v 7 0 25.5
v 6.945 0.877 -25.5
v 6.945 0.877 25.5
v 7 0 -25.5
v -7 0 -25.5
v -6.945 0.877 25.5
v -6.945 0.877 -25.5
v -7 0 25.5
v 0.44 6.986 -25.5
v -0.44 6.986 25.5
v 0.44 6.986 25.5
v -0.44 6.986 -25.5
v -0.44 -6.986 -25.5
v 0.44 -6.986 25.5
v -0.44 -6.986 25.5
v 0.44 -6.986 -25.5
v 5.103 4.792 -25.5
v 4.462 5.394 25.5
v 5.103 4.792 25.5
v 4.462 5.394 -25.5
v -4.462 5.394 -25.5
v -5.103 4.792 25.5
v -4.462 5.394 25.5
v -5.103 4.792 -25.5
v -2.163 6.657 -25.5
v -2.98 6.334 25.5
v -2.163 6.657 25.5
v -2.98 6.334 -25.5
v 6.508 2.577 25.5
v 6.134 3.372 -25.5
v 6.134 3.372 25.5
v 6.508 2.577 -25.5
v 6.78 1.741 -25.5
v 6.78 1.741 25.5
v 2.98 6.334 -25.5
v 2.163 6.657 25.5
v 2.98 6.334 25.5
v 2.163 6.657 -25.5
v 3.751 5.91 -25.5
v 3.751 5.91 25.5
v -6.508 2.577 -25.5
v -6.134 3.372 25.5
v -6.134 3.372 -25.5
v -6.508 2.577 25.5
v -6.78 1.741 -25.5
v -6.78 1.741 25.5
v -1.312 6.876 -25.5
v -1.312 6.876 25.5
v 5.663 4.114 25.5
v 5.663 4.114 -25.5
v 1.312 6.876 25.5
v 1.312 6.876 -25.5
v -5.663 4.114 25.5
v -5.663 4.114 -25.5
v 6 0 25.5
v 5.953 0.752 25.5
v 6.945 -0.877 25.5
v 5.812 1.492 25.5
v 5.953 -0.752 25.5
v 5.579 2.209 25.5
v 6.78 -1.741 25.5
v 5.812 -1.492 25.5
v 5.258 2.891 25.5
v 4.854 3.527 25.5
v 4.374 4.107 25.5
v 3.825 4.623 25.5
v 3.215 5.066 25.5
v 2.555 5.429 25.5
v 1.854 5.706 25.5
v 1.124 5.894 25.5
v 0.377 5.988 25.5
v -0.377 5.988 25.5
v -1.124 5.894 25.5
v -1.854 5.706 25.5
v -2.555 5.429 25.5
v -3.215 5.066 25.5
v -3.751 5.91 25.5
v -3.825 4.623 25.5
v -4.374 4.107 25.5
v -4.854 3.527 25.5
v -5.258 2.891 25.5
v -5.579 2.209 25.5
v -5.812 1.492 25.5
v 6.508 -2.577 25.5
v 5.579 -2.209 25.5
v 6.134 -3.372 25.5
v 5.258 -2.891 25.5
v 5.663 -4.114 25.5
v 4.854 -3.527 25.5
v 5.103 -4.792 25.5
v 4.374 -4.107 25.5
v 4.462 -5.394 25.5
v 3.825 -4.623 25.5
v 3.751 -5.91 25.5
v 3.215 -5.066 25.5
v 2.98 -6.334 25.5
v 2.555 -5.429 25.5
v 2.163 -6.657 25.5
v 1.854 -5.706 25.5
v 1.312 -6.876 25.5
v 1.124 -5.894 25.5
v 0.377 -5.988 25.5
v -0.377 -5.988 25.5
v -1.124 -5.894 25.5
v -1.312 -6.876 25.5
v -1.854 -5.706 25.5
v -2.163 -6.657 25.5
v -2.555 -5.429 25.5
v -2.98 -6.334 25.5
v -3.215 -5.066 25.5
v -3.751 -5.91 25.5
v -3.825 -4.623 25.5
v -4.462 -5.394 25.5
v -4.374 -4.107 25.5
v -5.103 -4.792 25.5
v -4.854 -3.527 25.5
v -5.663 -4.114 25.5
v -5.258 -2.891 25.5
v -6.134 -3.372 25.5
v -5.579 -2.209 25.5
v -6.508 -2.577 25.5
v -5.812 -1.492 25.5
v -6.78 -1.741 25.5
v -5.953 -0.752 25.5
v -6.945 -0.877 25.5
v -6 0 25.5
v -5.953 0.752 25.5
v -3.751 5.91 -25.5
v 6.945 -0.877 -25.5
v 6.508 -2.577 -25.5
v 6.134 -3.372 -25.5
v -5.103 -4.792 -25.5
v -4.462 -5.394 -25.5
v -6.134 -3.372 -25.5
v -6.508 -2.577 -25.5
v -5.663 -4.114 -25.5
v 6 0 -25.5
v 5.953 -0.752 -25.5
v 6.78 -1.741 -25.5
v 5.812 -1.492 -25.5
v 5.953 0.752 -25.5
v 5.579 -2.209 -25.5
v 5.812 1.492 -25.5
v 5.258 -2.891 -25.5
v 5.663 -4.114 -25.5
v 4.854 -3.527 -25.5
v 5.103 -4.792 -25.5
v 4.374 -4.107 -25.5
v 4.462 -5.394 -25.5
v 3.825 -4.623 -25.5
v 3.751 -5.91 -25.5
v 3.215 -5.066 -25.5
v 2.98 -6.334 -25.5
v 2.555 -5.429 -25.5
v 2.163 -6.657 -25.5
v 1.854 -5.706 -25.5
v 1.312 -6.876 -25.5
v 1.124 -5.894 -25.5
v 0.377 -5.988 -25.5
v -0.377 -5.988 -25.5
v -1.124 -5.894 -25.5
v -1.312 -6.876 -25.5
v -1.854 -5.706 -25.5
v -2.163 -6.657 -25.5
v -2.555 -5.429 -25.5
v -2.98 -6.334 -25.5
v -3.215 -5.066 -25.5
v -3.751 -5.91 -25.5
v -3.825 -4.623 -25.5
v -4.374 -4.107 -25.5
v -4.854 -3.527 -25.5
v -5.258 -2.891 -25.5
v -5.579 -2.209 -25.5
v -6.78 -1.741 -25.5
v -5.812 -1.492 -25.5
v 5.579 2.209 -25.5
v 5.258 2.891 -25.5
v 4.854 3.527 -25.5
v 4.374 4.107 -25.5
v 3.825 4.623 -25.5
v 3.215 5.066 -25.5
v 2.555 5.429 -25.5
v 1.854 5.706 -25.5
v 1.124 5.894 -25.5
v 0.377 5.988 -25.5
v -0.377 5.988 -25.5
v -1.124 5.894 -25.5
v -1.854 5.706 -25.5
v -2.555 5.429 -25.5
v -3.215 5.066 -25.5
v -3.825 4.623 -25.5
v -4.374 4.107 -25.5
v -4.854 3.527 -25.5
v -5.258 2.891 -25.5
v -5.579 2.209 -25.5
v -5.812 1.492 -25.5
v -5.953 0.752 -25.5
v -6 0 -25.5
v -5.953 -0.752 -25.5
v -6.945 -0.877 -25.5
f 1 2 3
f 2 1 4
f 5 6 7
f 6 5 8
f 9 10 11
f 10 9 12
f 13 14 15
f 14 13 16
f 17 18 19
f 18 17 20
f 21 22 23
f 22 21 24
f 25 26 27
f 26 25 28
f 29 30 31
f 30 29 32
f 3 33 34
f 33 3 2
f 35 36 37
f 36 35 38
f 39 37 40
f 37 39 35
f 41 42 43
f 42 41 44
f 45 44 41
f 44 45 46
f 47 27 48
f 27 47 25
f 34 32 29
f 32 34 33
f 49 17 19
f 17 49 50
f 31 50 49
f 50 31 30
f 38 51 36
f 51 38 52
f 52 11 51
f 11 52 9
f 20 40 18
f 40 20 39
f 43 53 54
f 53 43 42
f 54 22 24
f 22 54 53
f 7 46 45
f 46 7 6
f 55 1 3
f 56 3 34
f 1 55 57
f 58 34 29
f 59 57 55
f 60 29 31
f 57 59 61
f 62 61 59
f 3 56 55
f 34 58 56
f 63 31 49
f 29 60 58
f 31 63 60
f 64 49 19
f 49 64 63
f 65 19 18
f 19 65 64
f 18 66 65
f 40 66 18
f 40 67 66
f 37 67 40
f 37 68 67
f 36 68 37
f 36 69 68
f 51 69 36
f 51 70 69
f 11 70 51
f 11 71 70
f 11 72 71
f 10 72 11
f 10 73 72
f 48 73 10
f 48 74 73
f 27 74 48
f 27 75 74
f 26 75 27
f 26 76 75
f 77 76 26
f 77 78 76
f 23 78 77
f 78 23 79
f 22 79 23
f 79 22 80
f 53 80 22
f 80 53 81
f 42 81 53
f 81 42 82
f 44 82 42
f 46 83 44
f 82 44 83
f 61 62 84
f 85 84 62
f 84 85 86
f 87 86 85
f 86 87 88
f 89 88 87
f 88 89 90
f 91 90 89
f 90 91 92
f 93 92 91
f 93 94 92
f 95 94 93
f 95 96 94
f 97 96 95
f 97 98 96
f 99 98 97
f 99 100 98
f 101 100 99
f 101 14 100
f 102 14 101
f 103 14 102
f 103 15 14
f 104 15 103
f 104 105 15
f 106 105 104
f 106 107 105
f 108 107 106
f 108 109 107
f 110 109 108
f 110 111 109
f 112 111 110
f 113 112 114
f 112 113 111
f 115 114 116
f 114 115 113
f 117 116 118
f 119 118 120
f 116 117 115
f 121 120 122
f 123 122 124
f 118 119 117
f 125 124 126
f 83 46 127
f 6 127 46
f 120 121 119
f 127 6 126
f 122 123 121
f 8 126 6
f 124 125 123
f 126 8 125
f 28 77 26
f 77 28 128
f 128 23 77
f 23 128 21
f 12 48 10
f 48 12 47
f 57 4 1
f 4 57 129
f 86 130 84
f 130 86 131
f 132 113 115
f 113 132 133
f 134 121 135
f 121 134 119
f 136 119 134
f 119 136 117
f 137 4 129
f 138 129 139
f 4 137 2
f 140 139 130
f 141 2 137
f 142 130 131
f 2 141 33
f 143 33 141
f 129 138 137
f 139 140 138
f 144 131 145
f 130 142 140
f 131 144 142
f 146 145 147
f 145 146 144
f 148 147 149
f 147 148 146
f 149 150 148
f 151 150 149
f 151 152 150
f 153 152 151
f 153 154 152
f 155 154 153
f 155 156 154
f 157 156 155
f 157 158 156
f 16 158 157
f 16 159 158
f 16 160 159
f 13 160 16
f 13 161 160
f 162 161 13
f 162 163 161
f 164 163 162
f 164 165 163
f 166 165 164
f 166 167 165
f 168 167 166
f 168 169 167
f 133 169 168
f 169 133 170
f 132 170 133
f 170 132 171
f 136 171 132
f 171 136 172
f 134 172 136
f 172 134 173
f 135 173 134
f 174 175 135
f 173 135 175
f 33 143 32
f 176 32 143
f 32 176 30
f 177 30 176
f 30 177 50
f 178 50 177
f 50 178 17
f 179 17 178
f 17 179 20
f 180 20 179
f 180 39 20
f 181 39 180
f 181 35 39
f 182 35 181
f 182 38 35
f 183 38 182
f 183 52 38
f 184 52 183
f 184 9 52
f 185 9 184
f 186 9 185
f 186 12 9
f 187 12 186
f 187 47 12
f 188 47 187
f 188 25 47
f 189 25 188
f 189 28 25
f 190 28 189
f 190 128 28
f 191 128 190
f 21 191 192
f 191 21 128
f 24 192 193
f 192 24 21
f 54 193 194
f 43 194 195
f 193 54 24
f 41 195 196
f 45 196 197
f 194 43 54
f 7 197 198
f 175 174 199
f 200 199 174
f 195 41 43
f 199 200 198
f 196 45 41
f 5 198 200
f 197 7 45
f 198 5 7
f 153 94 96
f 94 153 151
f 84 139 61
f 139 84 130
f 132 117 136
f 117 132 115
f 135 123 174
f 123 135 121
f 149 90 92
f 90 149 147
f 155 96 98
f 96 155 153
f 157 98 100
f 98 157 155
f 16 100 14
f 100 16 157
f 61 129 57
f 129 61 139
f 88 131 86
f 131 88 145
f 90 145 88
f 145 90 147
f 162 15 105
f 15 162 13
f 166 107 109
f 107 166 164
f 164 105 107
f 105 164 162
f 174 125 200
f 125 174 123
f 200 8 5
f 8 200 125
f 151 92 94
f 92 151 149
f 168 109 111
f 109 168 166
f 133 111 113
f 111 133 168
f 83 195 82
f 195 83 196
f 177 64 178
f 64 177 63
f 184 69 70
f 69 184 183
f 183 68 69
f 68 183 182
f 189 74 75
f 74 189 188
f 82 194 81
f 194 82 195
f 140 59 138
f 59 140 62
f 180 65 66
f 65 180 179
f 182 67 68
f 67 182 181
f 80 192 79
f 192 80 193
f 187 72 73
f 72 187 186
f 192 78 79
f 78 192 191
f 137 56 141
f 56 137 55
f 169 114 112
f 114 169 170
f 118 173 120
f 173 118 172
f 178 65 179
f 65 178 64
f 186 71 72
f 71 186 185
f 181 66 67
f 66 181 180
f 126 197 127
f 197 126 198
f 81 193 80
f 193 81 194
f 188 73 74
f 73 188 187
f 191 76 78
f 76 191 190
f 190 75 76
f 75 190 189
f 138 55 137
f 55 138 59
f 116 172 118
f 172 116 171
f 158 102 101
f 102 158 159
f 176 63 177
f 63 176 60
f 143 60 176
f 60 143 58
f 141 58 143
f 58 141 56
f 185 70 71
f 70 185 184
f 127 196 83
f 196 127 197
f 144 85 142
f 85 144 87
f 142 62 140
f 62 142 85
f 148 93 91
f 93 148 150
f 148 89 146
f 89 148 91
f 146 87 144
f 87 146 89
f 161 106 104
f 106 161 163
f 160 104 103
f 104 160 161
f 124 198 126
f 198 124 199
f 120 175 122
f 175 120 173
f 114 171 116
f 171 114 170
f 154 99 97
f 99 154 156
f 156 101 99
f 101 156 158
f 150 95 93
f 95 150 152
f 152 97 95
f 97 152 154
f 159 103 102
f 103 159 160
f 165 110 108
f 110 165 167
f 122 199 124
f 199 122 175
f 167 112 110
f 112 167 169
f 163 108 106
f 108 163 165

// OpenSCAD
$fn = 50;


difference() {
	union() {
		translate(v = [0, 0, -25.5000000000]) {
			cylinder(h = 51, r = 7.0000000000);
		}
	}
	union() {
		translate(v = [0, 0, -100.0000000000]) {
			cylinder(h = 200, r = 6);
		}
	}
}
